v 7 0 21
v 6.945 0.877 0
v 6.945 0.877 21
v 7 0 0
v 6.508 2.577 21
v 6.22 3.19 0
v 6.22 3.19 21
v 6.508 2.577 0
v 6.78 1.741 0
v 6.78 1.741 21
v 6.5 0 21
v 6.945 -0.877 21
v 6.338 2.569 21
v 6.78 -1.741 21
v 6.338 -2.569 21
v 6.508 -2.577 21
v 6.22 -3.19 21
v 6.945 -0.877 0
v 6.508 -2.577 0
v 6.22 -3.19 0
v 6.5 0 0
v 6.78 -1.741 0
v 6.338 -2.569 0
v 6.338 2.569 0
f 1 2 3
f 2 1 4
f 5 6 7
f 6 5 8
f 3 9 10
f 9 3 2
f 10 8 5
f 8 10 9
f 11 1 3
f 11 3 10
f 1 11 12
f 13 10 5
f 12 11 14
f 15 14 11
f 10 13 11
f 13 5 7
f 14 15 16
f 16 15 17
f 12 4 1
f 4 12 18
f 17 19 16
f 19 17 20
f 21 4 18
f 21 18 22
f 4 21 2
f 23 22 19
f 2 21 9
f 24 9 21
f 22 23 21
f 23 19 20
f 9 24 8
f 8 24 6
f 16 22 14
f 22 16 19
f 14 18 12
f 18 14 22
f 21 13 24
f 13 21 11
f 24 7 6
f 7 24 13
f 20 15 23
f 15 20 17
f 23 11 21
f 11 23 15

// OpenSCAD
$fn = 50;


difference() {
	union() {
		cylinder(h = 21, r = 7.0000000000);
		translate(v = [-17.0000000000, 0, 0]) {
			cylinder(h = 21, r = 7.0000000000);
		}
	}
	union() {
		cylinder(h = 21, r = 3.2500000000);
		cylinder(h = 21, r = 1.8000000000);
		cylinder(h = 21, r = 1.8000000000);
		cylinder(h = 21, r = 1.8000000000);
		translate(v = [-21.5000000000, 0, 0]) {
			hull() {
				translate(v = [-3.7500000000, 0.0000000000, 0]) {
					cylinder(h = 21, r = 10.5000000000);
				}
				translate(v = [3.7500000000, 0.0000000000, 0]) {
					cylinder(h = 21, r = 10.5000000000);
				}
				translate(v = [-3.7500000000, -0.0000000000, 0]) {
					cylinder(h = 21, r = 10.5000000000);
				}
				translate(v = [3.7500000000, -0.0000000000, 0]) {
					cylinder(h = 21, r = 10.5000000000);
				}
			}
		}
		translate(v = [-14.0000000000, 0, 0.0000000000]) {
			cylinder(h = 21, r = 20.5000000000);
		}
	}
}
